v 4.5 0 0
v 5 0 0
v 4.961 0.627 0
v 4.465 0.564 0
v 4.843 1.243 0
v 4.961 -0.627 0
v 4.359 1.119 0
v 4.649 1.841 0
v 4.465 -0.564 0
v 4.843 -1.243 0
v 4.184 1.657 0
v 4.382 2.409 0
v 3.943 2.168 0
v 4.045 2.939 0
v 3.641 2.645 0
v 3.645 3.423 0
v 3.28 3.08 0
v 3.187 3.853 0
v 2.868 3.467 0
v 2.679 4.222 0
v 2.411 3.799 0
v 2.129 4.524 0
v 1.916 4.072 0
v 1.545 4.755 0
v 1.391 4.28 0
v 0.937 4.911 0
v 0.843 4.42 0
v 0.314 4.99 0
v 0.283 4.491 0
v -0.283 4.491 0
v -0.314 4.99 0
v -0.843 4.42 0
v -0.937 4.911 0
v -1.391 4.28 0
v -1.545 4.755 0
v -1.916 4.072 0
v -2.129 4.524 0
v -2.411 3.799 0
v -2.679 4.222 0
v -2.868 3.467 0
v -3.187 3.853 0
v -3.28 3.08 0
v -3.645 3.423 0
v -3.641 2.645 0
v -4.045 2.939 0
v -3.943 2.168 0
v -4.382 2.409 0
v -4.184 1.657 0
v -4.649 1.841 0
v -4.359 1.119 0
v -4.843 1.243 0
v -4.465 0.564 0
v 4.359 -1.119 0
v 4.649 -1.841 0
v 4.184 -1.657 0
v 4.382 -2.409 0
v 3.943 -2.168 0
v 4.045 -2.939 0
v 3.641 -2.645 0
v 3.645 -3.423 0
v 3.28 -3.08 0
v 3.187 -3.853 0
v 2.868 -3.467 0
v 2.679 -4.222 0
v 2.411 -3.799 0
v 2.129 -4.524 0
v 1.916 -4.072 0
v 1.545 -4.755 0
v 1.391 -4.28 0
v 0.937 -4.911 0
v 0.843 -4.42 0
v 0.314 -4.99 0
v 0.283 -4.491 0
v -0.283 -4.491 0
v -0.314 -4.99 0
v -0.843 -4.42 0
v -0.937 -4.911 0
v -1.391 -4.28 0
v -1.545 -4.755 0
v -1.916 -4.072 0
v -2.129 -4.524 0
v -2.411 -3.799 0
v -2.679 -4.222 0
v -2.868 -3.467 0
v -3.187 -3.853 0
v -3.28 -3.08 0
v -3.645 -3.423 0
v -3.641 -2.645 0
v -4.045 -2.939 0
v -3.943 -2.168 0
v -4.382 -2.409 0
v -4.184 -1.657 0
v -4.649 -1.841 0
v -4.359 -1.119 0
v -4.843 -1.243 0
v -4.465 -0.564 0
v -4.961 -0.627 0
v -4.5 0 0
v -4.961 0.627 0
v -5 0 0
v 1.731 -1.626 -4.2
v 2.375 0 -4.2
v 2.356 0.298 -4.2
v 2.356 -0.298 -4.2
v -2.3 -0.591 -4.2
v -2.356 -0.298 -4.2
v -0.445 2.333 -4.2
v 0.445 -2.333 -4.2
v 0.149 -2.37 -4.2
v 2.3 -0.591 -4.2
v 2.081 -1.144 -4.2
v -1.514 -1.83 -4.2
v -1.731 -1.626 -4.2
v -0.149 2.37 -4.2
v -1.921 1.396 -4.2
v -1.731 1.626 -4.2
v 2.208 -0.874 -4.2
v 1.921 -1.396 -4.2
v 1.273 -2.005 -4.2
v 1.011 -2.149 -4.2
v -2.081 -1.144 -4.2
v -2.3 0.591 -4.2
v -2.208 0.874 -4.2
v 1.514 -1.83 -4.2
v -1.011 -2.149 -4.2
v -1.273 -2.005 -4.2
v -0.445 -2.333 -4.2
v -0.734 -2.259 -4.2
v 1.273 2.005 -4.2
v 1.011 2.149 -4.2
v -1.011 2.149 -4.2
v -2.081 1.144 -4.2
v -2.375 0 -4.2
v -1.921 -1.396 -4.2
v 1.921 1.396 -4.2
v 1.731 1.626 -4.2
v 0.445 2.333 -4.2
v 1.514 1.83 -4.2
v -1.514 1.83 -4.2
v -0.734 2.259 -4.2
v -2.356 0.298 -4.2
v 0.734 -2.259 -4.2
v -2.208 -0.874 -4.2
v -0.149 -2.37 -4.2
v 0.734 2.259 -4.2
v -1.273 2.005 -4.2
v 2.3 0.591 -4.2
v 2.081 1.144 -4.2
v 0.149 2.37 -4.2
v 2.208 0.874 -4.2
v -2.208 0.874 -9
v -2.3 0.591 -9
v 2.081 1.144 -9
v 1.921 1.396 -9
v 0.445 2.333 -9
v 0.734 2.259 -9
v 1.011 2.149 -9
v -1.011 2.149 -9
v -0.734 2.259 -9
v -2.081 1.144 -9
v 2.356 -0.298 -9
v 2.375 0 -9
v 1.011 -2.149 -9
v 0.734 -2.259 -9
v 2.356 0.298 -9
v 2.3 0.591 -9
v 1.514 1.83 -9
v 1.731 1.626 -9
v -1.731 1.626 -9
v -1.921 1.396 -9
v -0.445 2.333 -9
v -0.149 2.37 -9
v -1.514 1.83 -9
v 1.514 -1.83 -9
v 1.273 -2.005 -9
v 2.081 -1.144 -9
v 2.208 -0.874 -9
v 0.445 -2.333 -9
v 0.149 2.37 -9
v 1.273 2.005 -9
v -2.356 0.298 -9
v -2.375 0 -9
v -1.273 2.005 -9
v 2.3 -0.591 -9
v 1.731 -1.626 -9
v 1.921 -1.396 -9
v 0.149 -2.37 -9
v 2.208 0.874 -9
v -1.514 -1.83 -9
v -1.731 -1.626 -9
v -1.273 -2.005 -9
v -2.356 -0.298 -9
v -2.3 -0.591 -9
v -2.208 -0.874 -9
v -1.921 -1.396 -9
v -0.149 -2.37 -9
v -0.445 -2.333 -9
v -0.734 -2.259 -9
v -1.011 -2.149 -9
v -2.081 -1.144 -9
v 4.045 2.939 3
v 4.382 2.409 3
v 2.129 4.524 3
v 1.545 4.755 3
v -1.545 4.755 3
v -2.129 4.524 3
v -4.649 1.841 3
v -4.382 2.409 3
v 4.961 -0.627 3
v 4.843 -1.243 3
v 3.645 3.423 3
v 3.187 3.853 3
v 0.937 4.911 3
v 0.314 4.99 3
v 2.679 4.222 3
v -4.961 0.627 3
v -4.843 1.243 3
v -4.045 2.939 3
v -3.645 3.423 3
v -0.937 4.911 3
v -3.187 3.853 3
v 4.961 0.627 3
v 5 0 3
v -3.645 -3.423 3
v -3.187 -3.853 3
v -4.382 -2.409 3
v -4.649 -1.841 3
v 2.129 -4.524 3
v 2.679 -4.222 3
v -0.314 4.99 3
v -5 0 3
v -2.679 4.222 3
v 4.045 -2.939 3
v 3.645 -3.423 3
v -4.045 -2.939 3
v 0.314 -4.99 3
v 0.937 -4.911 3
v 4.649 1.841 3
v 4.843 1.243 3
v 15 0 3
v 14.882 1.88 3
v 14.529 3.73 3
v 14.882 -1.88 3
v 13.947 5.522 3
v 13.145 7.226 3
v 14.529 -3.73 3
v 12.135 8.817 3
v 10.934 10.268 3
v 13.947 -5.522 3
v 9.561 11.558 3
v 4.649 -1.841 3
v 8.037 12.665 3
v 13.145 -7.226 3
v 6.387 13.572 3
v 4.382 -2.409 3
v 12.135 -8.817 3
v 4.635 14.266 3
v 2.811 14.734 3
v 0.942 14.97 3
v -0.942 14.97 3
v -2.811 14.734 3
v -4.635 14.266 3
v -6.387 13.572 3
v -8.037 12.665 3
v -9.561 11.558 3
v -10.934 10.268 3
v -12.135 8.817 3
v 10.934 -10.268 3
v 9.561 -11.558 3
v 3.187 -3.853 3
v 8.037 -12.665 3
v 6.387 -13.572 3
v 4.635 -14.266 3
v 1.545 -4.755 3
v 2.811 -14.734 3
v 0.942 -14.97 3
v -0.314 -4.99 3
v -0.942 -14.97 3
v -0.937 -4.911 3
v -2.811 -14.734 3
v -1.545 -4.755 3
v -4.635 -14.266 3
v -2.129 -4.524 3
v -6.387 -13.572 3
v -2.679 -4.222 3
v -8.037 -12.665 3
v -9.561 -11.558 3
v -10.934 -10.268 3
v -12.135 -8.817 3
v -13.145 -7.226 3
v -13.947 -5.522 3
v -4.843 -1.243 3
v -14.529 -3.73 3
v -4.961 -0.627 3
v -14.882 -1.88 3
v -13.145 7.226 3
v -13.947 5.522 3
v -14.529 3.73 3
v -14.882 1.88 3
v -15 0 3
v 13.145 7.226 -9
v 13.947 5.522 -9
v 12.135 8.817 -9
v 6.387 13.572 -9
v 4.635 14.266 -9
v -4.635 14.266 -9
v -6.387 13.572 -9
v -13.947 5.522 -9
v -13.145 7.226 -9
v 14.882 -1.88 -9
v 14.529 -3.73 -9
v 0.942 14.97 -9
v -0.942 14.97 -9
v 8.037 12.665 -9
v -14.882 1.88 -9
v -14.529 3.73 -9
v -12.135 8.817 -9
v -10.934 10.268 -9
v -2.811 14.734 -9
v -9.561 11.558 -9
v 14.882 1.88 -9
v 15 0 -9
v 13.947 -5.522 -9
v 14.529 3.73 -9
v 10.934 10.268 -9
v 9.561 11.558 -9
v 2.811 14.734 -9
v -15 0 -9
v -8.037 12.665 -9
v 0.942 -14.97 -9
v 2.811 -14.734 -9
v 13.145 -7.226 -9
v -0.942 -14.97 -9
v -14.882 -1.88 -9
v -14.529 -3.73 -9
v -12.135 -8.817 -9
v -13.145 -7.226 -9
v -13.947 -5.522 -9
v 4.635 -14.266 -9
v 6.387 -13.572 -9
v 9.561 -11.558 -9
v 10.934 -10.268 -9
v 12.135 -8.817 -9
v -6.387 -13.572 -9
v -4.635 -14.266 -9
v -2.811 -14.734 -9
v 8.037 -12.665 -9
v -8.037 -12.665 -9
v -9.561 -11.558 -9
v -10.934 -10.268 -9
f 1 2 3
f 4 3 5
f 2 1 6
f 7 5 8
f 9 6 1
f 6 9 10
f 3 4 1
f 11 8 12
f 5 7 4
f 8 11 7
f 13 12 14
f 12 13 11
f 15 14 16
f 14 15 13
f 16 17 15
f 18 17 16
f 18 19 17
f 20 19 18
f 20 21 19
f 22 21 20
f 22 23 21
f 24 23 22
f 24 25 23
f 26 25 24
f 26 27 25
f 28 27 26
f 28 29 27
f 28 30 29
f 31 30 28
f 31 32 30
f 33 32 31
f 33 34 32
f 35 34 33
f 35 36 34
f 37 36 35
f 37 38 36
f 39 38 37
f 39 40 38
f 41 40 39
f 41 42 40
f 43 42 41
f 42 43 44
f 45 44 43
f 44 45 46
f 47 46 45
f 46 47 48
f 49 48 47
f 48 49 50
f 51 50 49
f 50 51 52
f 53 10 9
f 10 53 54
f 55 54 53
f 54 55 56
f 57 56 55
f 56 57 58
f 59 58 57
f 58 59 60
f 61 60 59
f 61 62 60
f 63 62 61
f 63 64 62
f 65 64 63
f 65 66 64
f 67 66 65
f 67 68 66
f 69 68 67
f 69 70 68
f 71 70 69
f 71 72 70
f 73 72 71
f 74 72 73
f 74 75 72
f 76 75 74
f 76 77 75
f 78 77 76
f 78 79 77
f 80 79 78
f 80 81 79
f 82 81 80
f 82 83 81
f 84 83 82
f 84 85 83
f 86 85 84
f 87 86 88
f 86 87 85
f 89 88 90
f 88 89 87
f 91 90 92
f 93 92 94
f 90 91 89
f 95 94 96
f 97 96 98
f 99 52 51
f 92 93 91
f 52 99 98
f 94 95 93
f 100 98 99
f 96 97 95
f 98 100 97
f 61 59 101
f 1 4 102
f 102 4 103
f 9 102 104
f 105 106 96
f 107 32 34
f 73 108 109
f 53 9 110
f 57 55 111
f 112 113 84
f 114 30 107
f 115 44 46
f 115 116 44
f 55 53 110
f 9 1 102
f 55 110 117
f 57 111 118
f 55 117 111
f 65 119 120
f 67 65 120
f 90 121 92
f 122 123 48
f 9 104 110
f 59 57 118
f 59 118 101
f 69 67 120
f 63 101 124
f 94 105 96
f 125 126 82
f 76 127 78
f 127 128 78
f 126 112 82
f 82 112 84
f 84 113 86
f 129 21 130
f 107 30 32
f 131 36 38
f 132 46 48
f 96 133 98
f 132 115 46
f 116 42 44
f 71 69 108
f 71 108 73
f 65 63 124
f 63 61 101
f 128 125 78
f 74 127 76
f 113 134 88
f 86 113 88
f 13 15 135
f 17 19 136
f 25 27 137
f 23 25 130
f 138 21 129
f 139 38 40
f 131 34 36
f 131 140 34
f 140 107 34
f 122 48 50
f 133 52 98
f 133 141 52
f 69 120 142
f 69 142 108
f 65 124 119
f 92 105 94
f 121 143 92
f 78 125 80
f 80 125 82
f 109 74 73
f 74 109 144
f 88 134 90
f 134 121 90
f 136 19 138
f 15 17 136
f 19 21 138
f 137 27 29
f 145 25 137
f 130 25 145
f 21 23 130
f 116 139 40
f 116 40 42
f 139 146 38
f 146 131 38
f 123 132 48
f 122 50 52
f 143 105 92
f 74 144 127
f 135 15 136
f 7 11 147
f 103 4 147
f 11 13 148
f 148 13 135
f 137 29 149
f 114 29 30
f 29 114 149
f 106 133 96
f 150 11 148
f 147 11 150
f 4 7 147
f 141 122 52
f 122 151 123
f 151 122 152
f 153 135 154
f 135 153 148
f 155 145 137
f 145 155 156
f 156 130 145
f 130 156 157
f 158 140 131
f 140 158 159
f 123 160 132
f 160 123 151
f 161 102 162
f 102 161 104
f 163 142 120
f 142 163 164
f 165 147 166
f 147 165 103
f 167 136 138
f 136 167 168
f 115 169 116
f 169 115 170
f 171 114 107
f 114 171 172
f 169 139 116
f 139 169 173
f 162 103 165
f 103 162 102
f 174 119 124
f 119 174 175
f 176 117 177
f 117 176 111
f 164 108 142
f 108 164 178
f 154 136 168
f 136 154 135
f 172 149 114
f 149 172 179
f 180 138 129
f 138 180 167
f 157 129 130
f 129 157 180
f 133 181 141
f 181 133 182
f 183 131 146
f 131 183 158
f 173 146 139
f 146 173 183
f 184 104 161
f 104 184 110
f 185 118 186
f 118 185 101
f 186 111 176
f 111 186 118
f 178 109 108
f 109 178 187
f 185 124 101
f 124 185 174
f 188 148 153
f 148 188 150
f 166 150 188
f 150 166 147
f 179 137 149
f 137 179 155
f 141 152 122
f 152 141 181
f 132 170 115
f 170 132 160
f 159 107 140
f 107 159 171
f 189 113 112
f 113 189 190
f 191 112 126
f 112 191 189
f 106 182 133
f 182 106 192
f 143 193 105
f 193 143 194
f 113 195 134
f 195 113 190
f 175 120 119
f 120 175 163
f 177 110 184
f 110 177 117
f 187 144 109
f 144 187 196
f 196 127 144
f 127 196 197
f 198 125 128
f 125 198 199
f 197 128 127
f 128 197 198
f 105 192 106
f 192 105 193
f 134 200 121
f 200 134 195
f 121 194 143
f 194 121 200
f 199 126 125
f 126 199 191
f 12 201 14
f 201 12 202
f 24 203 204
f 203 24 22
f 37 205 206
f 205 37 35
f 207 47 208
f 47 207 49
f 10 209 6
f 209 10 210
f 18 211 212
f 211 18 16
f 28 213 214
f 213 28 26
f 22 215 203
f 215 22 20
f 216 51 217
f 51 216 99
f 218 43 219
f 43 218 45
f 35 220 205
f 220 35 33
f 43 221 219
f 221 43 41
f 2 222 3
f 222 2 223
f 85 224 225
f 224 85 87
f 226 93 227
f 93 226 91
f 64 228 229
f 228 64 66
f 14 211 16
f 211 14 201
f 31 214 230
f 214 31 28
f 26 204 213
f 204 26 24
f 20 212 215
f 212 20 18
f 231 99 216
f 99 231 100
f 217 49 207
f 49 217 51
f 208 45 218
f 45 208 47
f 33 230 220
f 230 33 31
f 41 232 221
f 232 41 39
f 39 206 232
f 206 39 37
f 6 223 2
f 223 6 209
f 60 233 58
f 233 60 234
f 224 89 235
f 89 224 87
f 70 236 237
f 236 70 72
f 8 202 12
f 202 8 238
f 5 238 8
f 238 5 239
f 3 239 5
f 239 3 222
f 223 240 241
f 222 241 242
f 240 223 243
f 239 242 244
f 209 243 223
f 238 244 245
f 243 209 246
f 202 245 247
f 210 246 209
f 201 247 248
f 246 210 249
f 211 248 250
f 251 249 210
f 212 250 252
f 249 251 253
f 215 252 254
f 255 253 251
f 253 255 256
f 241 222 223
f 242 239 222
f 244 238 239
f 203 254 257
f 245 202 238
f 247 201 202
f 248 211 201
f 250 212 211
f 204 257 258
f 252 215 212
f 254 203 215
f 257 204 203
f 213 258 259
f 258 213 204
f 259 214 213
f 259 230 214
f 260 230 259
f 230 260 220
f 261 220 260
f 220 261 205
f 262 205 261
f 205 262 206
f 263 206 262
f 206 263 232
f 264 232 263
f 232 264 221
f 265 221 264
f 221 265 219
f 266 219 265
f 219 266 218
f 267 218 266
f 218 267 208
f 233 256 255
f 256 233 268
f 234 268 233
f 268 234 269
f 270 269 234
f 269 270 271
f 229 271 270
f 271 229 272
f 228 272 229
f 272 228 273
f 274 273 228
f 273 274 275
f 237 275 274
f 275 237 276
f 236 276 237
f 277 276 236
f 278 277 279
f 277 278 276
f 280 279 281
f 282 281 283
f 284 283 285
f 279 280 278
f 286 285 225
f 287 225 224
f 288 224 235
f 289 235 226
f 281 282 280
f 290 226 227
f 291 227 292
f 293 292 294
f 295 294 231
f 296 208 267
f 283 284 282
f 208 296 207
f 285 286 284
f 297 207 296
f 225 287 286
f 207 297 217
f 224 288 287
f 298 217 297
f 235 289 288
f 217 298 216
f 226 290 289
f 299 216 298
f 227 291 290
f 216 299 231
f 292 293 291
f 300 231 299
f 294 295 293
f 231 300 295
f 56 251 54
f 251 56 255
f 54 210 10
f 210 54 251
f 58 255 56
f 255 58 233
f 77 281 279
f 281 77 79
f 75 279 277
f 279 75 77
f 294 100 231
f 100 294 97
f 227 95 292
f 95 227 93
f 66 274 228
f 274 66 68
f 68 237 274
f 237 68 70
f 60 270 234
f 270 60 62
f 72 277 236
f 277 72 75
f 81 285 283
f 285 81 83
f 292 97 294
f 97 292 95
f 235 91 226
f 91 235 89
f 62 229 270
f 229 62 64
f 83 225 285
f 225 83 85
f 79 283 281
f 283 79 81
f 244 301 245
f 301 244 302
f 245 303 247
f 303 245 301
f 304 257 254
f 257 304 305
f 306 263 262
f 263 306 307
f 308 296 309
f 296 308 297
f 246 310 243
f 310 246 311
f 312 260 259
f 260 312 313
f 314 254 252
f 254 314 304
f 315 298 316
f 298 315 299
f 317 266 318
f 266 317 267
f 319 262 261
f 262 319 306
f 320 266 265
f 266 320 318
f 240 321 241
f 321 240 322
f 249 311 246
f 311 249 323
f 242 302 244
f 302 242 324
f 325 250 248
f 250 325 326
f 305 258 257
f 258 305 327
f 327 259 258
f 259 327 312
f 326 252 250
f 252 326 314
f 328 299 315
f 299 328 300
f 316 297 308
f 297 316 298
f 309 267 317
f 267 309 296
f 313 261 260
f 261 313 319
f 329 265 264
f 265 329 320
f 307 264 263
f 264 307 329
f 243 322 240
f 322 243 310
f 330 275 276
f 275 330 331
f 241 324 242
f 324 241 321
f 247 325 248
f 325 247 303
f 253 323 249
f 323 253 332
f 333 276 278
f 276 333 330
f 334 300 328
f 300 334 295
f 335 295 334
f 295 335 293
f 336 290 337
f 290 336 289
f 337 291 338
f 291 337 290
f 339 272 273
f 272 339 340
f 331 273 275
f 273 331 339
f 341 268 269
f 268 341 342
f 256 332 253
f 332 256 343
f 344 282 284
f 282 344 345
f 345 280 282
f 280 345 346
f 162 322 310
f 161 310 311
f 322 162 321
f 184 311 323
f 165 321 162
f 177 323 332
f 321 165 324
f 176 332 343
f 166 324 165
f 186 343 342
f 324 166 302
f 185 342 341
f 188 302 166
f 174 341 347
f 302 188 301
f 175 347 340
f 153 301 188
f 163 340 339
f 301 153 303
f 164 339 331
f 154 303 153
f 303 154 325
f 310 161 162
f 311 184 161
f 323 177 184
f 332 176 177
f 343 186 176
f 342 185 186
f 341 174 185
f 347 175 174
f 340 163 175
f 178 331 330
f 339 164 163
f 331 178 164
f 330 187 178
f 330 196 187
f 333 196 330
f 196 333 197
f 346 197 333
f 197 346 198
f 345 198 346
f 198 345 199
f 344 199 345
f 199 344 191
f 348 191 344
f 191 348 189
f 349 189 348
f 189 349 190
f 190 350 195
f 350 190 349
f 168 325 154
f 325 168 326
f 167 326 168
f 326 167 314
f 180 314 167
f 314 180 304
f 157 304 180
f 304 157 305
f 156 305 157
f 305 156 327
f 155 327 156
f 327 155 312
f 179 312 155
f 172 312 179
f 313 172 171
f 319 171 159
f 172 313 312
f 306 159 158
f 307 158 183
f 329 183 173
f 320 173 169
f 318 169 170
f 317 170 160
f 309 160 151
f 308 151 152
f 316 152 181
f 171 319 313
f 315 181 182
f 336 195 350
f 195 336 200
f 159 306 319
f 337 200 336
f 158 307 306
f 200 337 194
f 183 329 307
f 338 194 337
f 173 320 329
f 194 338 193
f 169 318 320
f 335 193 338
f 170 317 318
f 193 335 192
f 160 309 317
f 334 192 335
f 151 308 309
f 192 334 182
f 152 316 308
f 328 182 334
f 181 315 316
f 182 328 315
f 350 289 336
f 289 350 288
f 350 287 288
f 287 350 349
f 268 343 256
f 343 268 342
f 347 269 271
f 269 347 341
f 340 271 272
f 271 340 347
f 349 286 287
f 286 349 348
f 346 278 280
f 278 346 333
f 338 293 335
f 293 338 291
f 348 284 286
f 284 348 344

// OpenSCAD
$fn = 50;


difference() {
	union() {
		translate(v = [0, 0, -9.0000000000]) {
			cylinder(h = 12, r = 15.0000000000);
		}
	}
	union() {
		translate(v = [0, 0, 0]) {
			rotate(a = [0, 0, 0]) {
				difference() {
					union() {
						translate(v = [0, 0, -12.0000000000]) {
							cylinder(h = 12, r = 2.2500000000);
						}
						translate(v = [0, 0, -4.2000000000]) {
							cylinder(h = 4.2000000000, r1 = 2.3750000000, r2 = 4.5000000000);
						}
						translate(v = [0, 0, -12.0000000000]) {
							cylinder(h = 12, r = 2.3750000000);
						}
						translate(v = [0, 0, -12.0000000000]) {
							cylinder(h = 12, r = 2.2500000000);
						}
					}
					union();
				}
			}
		}
		#cylinder(h = 3, r = 5.0000000000);
	}
}
